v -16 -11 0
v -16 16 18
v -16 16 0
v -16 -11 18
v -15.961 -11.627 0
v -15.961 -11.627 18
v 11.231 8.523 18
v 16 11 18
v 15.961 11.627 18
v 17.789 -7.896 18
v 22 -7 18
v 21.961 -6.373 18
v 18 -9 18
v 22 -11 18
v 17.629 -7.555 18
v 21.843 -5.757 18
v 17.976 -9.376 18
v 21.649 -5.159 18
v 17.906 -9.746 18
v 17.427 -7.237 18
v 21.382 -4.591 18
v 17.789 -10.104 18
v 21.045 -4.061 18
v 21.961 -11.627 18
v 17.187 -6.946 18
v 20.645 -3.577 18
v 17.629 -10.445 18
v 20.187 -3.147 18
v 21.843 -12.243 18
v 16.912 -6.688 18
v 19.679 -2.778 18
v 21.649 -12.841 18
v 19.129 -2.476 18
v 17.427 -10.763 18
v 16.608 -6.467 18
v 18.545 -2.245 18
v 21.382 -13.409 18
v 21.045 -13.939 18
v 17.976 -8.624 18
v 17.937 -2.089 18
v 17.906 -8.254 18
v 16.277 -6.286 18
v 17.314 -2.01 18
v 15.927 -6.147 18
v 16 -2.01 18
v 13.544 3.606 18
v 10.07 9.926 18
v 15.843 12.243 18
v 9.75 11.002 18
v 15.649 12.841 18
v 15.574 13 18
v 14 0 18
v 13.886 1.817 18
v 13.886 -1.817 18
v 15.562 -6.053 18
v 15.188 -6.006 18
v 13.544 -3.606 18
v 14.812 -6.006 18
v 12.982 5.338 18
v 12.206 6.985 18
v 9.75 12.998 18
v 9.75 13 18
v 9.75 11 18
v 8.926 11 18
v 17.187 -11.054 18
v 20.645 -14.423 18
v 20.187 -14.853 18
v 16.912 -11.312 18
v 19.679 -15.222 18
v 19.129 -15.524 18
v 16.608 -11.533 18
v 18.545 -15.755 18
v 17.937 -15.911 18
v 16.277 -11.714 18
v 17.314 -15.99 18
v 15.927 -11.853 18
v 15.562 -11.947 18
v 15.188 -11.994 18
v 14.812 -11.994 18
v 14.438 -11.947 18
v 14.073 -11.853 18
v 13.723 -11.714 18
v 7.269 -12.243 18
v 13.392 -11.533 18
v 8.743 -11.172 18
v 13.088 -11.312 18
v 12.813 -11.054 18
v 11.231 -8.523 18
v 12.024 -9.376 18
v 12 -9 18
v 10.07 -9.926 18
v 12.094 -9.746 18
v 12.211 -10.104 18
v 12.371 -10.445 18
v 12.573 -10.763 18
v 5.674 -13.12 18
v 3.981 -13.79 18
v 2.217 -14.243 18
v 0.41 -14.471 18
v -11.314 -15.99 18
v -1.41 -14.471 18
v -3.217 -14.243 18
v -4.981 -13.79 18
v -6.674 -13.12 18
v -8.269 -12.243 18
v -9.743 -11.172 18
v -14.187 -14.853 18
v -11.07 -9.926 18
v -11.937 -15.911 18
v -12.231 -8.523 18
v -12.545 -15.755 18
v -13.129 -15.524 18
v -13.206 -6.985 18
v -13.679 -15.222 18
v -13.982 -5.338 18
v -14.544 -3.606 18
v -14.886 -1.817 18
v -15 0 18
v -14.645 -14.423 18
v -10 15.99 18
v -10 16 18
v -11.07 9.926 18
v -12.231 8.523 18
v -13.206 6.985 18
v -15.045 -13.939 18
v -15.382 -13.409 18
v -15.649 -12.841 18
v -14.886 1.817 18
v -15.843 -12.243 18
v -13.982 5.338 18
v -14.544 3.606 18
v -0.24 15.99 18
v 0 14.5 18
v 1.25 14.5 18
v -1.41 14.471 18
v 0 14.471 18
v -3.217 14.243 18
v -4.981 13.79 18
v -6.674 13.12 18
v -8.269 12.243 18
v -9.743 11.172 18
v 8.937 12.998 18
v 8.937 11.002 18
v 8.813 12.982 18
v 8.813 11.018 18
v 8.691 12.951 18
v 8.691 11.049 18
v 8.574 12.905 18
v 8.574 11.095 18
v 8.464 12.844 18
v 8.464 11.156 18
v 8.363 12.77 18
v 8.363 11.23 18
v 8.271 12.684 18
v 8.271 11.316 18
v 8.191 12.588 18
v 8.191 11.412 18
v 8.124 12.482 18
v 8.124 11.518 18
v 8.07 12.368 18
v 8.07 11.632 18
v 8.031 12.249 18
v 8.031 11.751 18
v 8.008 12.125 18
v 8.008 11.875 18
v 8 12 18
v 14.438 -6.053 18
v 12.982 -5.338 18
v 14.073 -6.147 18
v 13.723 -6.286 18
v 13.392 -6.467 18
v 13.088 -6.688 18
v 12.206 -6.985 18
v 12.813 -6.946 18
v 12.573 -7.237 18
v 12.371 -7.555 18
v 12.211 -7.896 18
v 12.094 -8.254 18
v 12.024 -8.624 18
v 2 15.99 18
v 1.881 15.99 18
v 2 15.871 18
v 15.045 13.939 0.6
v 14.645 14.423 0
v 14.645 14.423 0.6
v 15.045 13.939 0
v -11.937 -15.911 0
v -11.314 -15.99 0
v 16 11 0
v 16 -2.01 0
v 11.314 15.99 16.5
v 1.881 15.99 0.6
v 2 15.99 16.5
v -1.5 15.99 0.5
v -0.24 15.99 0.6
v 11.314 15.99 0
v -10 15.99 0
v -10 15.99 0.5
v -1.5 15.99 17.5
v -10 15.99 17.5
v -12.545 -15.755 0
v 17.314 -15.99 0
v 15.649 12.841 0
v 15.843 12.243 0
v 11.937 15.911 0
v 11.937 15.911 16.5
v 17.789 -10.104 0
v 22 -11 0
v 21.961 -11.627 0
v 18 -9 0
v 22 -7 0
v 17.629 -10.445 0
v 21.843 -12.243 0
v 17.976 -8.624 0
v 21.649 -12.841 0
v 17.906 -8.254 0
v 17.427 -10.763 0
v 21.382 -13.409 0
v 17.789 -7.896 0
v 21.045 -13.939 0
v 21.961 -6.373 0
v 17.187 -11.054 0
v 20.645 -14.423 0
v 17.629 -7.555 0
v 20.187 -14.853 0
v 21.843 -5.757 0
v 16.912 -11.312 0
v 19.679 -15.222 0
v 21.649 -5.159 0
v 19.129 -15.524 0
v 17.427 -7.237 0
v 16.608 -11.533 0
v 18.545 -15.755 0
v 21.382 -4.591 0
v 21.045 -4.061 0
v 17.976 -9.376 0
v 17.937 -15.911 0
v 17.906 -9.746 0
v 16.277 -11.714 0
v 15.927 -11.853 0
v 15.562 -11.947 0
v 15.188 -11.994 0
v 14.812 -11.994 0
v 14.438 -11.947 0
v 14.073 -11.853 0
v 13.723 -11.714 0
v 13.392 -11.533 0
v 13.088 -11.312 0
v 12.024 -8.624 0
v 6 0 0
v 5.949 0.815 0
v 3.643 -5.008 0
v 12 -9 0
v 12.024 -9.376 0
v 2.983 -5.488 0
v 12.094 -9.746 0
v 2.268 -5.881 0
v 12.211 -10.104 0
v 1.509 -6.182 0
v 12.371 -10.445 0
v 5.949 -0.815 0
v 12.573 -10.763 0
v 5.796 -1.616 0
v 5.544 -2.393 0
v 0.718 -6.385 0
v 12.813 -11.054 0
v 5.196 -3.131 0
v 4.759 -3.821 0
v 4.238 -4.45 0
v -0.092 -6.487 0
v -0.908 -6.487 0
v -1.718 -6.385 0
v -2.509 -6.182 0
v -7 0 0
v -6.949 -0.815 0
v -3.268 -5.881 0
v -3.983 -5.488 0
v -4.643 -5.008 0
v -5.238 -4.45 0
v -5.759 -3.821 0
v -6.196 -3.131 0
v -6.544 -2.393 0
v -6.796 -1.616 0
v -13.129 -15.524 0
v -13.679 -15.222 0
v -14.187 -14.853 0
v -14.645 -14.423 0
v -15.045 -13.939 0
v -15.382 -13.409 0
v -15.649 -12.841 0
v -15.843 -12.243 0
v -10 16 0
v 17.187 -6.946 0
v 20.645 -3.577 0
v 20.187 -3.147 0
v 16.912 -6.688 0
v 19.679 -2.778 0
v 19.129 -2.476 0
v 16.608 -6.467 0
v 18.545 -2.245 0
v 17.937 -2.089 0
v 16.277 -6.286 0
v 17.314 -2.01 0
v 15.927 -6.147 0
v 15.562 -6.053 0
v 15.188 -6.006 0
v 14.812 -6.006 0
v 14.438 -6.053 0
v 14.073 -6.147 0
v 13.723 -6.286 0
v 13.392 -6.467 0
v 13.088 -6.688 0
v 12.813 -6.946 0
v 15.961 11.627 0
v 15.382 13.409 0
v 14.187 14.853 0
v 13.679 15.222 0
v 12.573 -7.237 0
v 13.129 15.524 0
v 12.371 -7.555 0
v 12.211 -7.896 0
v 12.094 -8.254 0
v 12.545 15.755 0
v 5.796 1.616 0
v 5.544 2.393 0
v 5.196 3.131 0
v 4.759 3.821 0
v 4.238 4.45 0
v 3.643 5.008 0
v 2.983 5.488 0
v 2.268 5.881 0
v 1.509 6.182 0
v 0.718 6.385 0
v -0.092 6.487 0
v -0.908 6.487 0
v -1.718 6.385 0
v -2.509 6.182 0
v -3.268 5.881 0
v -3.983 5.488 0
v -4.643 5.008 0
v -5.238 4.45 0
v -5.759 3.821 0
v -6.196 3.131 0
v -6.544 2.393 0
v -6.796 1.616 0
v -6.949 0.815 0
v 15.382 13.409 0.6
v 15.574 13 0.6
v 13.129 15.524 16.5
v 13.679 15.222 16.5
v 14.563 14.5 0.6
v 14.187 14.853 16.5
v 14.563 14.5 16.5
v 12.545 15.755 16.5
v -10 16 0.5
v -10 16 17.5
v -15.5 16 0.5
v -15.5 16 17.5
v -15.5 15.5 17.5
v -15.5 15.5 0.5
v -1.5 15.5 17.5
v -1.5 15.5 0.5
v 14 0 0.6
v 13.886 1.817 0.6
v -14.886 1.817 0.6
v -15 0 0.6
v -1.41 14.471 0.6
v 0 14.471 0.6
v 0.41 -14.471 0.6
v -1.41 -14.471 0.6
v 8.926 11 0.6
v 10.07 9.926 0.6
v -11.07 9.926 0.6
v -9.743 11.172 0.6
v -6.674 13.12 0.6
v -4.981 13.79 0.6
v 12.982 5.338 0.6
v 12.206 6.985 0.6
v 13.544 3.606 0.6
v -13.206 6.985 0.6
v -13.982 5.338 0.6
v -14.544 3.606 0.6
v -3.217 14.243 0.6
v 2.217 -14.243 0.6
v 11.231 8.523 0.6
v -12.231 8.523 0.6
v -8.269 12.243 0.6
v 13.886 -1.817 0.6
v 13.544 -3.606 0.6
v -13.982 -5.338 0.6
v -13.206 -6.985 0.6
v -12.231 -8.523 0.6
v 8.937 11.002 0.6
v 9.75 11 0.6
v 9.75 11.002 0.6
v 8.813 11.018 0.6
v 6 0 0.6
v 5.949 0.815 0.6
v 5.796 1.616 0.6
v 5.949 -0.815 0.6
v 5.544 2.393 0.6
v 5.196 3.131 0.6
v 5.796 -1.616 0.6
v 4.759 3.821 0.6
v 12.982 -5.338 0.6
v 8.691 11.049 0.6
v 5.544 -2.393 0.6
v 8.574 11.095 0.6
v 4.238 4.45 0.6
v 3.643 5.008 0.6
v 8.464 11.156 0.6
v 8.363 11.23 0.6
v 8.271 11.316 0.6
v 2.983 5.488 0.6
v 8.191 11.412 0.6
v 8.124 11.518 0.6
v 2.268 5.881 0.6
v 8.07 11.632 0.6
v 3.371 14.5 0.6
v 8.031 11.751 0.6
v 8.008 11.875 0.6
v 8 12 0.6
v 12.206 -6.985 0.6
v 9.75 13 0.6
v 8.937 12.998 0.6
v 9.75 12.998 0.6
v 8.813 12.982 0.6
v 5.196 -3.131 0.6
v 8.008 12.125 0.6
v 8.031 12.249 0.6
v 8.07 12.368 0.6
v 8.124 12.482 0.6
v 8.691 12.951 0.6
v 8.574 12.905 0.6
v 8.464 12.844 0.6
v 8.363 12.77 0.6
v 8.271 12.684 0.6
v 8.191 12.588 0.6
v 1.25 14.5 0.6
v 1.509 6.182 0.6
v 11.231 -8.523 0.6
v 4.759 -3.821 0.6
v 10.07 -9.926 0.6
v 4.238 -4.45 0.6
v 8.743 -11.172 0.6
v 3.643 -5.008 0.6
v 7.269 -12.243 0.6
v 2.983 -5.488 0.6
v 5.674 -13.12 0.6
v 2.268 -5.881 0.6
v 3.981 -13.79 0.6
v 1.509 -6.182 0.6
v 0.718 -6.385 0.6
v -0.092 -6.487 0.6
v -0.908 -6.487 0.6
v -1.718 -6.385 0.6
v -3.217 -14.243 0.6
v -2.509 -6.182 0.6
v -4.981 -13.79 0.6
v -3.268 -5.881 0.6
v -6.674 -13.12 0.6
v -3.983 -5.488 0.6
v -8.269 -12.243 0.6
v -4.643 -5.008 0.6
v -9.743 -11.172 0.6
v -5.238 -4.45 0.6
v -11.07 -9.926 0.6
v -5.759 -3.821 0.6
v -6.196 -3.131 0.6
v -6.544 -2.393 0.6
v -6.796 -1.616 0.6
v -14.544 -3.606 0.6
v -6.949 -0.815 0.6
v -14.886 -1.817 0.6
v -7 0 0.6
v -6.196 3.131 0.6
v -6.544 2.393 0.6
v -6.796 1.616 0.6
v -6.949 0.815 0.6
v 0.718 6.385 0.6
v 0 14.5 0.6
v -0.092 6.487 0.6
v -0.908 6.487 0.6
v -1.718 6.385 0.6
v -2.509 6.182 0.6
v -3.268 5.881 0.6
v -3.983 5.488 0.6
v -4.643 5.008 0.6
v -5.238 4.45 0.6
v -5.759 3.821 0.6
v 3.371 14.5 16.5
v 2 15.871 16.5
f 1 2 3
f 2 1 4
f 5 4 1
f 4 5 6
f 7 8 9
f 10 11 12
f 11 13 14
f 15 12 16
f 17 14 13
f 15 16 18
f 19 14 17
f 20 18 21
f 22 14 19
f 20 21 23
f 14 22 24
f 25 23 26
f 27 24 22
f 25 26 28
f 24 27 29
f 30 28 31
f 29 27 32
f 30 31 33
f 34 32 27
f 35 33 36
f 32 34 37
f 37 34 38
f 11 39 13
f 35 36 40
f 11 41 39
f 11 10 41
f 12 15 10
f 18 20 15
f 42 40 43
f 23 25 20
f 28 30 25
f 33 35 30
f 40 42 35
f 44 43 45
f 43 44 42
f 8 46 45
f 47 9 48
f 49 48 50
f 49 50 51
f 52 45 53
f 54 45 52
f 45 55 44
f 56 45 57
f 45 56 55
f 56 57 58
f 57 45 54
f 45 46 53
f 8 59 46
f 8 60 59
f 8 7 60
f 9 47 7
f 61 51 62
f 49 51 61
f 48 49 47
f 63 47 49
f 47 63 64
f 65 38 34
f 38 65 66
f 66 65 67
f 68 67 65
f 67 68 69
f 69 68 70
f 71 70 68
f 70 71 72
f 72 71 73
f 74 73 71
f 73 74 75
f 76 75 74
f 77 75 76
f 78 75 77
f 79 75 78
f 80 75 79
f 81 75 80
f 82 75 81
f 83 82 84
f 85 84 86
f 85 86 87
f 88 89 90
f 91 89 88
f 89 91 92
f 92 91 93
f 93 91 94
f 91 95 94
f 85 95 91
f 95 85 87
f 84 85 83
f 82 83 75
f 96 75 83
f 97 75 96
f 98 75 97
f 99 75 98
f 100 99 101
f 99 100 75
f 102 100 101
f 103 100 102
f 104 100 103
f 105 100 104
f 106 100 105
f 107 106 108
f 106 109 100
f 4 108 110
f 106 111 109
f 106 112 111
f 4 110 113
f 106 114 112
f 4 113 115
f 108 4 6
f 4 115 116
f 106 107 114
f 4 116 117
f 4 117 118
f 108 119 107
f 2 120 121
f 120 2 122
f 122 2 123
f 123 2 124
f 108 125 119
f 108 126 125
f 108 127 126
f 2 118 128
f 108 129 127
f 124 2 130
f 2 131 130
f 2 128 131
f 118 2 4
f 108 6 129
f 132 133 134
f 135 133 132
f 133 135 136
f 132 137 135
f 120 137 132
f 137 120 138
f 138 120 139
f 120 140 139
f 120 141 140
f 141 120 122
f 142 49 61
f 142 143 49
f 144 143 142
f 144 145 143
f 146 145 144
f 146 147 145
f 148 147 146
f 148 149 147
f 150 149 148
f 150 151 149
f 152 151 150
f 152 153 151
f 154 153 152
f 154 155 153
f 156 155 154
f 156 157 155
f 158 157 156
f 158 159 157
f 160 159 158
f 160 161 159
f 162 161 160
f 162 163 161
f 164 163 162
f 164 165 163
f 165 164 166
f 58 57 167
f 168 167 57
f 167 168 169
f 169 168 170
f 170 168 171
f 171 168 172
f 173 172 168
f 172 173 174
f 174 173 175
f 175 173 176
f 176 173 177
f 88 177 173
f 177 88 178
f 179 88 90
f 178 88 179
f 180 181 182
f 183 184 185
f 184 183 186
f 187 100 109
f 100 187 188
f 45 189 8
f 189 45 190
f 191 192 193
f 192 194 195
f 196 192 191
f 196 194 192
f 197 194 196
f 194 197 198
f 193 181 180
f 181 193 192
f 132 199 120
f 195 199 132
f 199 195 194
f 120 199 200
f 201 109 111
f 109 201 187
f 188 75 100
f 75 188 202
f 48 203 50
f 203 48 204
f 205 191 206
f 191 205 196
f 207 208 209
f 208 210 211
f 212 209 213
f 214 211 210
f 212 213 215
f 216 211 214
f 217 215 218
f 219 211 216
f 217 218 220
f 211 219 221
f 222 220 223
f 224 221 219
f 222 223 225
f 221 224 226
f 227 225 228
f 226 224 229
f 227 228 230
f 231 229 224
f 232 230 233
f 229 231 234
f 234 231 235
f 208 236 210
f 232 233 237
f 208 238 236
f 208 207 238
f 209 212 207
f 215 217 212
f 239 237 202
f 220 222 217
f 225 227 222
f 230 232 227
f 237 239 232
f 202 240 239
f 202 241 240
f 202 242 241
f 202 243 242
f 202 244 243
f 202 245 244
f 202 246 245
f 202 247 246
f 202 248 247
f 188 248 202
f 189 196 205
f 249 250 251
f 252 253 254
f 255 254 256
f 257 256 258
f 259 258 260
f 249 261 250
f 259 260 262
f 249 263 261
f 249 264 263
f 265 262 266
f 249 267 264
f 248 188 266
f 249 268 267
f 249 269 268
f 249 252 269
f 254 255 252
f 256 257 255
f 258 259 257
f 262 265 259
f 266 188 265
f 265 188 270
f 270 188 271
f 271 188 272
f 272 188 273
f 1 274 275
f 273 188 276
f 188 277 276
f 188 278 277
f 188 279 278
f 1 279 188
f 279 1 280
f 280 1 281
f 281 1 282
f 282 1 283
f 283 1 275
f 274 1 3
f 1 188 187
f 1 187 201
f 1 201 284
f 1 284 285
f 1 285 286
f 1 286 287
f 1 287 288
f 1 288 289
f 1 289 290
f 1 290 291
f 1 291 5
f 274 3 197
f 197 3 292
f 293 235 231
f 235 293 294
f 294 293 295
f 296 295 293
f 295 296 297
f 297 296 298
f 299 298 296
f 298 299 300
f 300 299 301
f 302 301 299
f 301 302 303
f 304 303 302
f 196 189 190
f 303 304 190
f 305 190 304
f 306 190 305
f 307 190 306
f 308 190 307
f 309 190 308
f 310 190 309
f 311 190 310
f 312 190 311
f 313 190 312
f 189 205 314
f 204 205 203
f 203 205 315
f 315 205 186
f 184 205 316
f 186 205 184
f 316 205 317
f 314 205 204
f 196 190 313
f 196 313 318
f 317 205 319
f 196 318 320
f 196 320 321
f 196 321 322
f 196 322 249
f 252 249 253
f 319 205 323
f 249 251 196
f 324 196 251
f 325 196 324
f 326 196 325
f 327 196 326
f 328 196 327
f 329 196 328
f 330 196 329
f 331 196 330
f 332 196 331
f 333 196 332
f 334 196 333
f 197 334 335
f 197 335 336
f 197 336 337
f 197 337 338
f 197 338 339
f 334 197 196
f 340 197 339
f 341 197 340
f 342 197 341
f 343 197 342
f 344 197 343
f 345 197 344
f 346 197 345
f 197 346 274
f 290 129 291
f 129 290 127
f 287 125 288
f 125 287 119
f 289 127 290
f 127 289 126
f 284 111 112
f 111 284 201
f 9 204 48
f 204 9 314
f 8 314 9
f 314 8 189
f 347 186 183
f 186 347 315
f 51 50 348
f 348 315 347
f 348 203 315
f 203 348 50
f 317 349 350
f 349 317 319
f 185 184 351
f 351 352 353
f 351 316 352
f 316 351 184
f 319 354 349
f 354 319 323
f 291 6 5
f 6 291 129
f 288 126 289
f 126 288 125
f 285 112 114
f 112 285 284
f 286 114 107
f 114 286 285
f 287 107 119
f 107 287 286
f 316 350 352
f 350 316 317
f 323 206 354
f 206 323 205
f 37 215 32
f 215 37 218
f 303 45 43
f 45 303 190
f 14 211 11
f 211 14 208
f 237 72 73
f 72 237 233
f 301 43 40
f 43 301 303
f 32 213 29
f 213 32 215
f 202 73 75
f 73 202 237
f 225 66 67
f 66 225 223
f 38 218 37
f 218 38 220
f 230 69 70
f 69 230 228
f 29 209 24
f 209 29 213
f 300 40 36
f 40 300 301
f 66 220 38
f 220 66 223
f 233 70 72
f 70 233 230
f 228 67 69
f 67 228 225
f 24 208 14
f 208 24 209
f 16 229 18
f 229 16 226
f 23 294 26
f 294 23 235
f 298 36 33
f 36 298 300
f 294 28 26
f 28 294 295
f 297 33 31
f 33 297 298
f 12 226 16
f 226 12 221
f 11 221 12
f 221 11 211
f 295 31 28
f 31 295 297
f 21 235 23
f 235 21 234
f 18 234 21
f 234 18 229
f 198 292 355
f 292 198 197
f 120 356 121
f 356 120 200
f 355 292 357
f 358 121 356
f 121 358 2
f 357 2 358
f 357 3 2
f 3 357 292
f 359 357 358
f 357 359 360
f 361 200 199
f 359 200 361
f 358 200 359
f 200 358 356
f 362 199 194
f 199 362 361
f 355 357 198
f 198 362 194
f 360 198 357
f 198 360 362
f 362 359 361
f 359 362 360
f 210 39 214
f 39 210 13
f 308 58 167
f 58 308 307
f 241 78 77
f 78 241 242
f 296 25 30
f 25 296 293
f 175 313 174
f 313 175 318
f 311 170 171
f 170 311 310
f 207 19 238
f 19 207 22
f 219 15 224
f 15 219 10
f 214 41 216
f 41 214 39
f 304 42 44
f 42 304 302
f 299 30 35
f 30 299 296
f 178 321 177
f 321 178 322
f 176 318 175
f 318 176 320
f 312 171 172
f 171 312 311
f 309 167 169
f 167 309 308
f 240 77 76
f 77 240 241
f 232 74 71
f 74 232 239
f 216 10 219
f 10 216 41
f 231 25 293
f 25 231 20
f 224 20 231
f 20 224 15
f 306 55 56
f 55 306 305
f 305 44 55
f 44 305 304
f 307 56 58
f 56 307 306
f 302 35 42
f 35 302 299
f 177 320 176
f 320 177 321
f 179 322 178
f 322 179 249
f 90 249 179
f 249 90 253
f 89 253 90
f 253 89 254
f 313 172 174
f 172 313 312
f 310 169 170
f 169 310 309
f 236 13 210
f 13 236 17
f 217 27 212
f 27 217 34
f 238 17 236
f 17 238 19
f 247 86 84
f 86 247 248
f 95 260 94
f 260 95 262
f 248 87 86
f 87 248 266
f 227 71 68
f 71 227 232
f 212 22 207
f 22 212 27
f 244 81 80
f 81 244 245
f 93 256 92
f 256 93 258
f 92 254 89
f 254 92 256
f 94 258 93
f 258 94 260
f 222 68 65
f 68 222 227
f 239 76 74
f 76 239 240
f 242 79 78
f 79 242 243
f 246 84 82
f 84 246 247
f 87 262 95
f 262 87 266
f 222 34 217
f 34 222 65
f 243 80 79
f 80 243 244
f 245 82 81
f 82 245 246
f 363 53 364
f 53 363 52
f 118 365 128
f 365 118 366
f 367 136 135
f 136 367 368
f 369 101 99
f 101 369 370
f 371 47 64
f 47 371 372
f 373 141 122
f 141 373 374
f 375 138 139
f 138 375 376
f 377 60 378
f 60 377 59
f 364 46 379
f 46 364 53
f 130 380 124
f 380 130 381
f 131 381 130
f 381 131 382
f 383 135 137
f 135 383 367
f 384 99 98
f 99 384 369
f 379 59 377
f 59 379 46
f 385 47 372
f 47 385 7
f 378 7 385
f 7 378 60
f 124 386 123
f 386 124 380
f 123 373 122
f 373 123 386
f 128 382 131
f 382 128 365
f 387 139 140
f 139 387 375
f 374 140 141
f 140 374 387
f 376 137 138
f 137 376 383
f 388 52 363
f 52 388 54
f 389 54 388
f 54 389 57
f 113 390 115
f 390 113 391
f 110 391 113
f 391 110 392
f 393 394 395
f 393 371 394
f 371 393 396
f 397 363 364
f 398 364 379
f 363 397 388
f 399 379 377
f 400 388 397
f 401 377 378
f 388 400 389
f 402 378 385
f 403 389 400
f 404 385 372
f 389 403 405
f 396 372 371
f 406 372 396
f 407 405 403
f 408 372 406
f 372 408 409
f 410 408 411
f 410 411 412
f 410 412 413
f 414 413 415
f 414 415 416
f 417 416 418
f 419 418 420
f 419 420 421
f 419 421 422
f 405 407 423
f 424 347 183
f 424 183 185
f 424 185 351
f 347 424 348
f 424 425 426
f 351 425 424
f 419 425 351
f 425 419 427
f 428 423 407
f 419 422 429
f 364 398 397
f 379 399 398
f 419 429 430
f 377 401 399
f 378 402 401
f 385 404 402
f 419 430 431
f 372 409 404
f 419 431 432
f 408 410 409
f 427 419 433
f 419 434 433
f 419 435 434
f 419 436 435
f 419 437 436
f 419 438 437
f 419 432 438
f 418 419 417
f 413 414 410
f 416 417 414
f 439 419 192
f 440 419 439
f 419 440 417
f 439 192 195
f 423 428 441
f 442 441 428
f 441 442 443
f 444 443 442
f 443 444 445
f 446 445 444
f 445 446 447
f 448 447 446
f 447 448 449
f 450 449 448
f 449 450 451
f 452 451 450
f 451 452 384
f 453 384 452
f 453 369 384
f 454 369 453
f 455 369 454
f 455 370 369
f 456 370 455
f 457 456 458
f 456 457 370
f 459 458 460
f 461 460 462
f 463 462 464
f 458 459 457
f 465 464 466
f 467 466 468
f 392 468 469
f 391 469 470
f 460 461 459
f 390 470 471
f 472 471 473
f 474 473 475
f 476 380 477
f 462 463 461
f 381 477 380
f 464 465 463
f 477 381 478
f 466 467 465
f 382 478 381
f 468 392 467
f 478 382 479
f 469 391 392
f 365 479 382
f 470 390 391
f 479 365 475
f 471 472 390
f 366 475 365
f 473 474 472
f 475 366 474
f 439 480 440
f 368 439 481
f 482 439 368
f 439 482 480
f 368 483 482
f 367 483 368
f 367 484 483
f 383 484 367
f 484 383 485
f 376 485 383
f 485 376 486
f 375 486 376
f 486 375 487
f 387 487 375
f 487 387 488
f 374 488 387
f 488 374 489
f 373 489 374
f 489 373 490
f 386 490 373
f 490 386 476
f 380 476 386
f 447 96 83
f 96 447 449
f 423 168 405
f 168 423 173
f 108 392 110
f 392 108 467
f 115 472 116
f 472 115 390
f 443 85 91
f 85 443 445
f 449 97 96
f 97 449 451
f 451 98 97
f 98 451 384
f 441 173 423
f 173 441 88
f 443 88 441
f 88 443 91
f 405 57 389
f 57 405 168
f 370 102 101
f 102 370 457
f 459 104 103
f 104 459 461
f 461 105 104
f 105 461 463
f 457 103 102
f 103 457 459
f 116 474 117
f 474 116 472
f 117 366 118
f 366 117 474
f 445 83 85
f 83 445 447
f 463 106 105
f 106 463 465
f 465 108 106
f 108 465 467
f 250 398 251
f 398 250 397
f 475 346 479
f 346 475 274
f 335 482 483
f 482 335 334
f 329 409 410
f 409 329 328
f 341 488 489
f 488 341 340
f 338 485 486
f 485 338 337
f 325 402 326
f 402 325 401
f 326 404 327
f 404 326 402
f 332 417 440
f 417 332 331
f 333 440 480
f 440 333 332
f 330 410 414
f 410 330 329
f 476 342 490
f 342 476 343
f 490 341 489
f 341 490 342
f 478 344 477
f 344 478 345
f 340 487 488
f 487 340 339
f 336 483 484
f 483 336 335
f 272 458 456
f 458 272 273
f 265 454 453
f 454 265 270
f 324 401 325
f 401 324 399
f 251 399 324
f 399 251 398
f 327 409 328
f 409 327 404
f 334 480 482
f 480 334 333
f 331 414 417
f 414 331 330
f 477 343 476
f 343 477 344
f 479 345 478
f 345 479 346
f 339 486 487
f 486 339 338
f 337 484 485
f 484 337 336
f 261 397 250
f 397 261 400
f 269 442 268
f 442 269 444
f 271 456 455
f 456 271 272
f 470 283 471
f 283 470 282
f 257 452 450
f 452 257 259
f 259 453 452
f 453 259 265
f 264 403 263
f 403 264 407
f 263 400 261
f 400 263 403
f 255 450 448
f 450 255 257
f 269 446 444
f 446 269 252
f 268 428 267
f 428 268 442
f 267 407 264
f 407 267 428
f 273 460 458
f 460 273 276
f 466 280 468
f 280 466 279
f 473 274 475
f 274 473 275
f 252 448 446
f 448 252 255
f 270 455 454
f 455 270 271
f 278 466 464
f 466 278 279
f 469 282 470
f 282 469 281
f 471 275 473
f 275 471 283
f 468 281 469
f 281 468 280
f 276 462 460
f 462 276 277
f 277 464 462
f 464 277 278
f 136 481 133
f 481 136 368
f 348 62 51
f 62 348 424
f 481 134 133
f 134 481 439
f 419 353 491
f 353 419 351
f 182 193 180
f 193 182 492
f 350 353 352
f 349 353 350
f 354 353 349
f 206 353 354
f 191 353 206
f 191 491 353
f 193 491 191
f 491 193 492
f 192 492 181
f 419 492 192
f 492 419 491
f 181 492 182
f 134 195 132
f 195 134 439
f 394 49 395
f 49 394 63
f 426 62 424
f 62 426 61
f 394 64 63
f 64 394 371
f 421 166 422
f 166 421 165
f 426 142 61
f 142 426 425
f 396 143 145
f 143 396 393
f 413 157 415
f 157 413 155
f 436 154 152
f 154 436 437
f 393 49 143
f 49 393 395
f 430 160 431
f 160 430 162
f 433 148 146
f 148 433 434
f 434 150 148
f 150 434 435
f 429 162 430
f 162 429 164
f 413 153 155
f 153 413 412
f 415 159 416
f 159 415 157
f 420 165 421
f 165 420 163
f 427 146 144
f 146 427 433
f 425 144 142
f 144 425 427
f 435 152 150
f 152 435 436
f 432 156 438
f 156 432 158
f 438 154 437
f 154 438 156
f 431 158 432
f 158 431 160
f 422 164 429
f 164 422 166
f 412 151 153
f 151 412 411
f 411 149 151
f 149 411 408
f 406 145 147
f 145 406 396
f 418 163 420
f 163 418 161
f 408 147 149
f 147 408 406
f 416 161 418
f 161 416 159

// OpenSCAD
$fn = 50;


union() {
	difference() {
		union() {
			translate(v = [0, 0, 0]) {
				rotate(a = [0, 0, 0]) {
					hull() {
						translate(v = [-11.0000000000, 11.0000000000, 0]) {
							rotate(a = [0, 0, 0]) {
								translate(v = [0, 0, 0]) {
									rotate(a = [0, 0, 0]) {
										cylinder(h = 18, r = 5);
									}
								}
							}
						}
						translate(v = [11.0000000000, 11.0000000000, 0]) {
							rotate(a = [0, 0, 0]) {
								translate(v = [0, 0, 0]) {
									rotate(a = [0, 0, 0]) {
										cylinder(h = 18, r = 5);
									}
								}
							}
						}
						translate(v = [-11.0000000000, -11.0000000000, 0]) {
							rotate(a = [0, 0, 0]) {
								translate(v = [0, 0, 0]) {
									rotate(a = [0, 0, 0]) {
										cylinder(h = 18, r = 5);
									}
								}
							}
						}
						translate(v = [11.0000000000, -11.0000000000, 0]) {
							rotate(a = [0, 0, 0]) {
								translate(v = [0, 0, 0]) {
									rotate(a = [0, 0, 0]) {
										cylinder(h = 18, r = 5);
									}
								}
							}
						}
					}
				}
			}
			translate(v = [7.5000000000, -9.0000000000, 0]) {
				rotate(a = [0, 0, 0]) {
					hull() {
						translate(v = [-9.5000000000, 2.0000000000, 0]) {
							rotate(a = [0, 0, 0]) {
								translate(v = [0, 0, 0]) {
									rotate(a = [0, 0, 0]) {
										cylinder(h = 18, r = 5);
									}
								}
							}
						}
						translate(v = [9.5000000000, 2.0000000000, 0]) {
							rotate(a = [0, 0, 0]) {
								translate(v = [0, 0, 0]) {
									rotate(a = [0, 0, 0]) {
										cylinder(h = 18, r = 5);
									}
								}
							}
						}
						translate(v = [-9.5000000000, -2.0000000000, 0]) {
							rotate(a = [0, 0, 0]) {
								translate(v = [0, 0, 0]) {
									rotate(a = [0, 0, 0]) {
										cylinder(h = 18, r = 5);
									}
								}
							}
						}
						translate(v = [9.5000000000, -2.0000000000, 0]) {
							rotate(a = [0, 0, 0]) {
								translate(v = [0, 0, 0]) {
									rotate(a = [0, 0, 0]) {
										cylinder(h = 18, r = 5);
									}
								}
							}
						}
					}
				}
			}
			translate(v = [-16.0000000000, 10.0000000000, 0]) {
				rotate(a = [0, 0, 0]) {
					cube(size = [6, 6, 18]);
				}
			}
		}
		union() {
			translate(v = [-15.5000000000, 15.5000000000, 0.5000000000]) {
				rotate(a = [0, 0, 0]) {
					cube(size = [14, 0.5000000000, 17.0000000000]);
				}
			}
			translate(v = [15.0000000000, -9.0000000000, -125.0000000000]) {
				rotate(a = [0, 0, 0]) {
					cylinder(h = 250, r = 3.0000000000);
				}
			}
			translate(v = [-0.5000000000, 0.0000000000, 0.6000000000]) {
				rotate(a = [0, 0, 0]) {
					cylinder(h = 20.4000000000, r = 14.5000000000);
				}
			}
			translate(v = [-0.5000000000, 0.0000000000, -9.0000000000]) {
				rotate(a = [0, 0, 0]) {
					cylinder(h = 18, r = 6.5000000000);
				}
			}
			translate(v = [0.0000000000, 13.0000000000, 0.6000000000]) {
				rotate(a = [0, 0, 0]) {
					cube(size = [16.0000000000, 1.5000000000, 20.4000000000]);
				}
			}
			translate(v = [2.0000000000, 13.0000000000, 16.5000000000]) {
				rotate(a = [0, 0, 0]) {
					cube(size = [14.0000000000, 4.5000000000, 1.5000000000]);
				}
			}
			translate(v = [-3.0000000000, 18.7500000000, 0.6000000000]) {
				rotate(a = [0, 0, -45]) {
					cube(size = [10, 1.5000000000, 20.4000000000]);
				}
			}
			translate(v = [2.2500000000, 11.0000000000, 0.6000000000]) {
				rotate(a = [0, 0, 0]) {
					cube(size = [7.5000000000, 2, 17.4000000000]);
				}
			}
		}
	}
	union() {
		translate(v = [11.5000000000, 12, 0]) {
			rotate(a = [0, 0, 0]) {
				hull() {
					translate(v = [2.5000000000, 0, 0]) {
						rotate(a = [0, 0, 0]) {
							translate(v = [0, 0, 0]) {
								rotate(a = [0, 0, 0]) {
									cylinder(h = 18, r = 1.0000000000);
								}
							}
						}
					}
					translate(v = [-2.5000000000, 0, 0]) {
						rotate(a = [0, 0, 0]) {
							translate(v = [0, 0, 0]) {
								rotate(a = [0, 0, 0]) {
									cylinder(h = 18, r = 1.0000000000);
								}
							}
						}
					}
				}
			}
		}
	}
}
